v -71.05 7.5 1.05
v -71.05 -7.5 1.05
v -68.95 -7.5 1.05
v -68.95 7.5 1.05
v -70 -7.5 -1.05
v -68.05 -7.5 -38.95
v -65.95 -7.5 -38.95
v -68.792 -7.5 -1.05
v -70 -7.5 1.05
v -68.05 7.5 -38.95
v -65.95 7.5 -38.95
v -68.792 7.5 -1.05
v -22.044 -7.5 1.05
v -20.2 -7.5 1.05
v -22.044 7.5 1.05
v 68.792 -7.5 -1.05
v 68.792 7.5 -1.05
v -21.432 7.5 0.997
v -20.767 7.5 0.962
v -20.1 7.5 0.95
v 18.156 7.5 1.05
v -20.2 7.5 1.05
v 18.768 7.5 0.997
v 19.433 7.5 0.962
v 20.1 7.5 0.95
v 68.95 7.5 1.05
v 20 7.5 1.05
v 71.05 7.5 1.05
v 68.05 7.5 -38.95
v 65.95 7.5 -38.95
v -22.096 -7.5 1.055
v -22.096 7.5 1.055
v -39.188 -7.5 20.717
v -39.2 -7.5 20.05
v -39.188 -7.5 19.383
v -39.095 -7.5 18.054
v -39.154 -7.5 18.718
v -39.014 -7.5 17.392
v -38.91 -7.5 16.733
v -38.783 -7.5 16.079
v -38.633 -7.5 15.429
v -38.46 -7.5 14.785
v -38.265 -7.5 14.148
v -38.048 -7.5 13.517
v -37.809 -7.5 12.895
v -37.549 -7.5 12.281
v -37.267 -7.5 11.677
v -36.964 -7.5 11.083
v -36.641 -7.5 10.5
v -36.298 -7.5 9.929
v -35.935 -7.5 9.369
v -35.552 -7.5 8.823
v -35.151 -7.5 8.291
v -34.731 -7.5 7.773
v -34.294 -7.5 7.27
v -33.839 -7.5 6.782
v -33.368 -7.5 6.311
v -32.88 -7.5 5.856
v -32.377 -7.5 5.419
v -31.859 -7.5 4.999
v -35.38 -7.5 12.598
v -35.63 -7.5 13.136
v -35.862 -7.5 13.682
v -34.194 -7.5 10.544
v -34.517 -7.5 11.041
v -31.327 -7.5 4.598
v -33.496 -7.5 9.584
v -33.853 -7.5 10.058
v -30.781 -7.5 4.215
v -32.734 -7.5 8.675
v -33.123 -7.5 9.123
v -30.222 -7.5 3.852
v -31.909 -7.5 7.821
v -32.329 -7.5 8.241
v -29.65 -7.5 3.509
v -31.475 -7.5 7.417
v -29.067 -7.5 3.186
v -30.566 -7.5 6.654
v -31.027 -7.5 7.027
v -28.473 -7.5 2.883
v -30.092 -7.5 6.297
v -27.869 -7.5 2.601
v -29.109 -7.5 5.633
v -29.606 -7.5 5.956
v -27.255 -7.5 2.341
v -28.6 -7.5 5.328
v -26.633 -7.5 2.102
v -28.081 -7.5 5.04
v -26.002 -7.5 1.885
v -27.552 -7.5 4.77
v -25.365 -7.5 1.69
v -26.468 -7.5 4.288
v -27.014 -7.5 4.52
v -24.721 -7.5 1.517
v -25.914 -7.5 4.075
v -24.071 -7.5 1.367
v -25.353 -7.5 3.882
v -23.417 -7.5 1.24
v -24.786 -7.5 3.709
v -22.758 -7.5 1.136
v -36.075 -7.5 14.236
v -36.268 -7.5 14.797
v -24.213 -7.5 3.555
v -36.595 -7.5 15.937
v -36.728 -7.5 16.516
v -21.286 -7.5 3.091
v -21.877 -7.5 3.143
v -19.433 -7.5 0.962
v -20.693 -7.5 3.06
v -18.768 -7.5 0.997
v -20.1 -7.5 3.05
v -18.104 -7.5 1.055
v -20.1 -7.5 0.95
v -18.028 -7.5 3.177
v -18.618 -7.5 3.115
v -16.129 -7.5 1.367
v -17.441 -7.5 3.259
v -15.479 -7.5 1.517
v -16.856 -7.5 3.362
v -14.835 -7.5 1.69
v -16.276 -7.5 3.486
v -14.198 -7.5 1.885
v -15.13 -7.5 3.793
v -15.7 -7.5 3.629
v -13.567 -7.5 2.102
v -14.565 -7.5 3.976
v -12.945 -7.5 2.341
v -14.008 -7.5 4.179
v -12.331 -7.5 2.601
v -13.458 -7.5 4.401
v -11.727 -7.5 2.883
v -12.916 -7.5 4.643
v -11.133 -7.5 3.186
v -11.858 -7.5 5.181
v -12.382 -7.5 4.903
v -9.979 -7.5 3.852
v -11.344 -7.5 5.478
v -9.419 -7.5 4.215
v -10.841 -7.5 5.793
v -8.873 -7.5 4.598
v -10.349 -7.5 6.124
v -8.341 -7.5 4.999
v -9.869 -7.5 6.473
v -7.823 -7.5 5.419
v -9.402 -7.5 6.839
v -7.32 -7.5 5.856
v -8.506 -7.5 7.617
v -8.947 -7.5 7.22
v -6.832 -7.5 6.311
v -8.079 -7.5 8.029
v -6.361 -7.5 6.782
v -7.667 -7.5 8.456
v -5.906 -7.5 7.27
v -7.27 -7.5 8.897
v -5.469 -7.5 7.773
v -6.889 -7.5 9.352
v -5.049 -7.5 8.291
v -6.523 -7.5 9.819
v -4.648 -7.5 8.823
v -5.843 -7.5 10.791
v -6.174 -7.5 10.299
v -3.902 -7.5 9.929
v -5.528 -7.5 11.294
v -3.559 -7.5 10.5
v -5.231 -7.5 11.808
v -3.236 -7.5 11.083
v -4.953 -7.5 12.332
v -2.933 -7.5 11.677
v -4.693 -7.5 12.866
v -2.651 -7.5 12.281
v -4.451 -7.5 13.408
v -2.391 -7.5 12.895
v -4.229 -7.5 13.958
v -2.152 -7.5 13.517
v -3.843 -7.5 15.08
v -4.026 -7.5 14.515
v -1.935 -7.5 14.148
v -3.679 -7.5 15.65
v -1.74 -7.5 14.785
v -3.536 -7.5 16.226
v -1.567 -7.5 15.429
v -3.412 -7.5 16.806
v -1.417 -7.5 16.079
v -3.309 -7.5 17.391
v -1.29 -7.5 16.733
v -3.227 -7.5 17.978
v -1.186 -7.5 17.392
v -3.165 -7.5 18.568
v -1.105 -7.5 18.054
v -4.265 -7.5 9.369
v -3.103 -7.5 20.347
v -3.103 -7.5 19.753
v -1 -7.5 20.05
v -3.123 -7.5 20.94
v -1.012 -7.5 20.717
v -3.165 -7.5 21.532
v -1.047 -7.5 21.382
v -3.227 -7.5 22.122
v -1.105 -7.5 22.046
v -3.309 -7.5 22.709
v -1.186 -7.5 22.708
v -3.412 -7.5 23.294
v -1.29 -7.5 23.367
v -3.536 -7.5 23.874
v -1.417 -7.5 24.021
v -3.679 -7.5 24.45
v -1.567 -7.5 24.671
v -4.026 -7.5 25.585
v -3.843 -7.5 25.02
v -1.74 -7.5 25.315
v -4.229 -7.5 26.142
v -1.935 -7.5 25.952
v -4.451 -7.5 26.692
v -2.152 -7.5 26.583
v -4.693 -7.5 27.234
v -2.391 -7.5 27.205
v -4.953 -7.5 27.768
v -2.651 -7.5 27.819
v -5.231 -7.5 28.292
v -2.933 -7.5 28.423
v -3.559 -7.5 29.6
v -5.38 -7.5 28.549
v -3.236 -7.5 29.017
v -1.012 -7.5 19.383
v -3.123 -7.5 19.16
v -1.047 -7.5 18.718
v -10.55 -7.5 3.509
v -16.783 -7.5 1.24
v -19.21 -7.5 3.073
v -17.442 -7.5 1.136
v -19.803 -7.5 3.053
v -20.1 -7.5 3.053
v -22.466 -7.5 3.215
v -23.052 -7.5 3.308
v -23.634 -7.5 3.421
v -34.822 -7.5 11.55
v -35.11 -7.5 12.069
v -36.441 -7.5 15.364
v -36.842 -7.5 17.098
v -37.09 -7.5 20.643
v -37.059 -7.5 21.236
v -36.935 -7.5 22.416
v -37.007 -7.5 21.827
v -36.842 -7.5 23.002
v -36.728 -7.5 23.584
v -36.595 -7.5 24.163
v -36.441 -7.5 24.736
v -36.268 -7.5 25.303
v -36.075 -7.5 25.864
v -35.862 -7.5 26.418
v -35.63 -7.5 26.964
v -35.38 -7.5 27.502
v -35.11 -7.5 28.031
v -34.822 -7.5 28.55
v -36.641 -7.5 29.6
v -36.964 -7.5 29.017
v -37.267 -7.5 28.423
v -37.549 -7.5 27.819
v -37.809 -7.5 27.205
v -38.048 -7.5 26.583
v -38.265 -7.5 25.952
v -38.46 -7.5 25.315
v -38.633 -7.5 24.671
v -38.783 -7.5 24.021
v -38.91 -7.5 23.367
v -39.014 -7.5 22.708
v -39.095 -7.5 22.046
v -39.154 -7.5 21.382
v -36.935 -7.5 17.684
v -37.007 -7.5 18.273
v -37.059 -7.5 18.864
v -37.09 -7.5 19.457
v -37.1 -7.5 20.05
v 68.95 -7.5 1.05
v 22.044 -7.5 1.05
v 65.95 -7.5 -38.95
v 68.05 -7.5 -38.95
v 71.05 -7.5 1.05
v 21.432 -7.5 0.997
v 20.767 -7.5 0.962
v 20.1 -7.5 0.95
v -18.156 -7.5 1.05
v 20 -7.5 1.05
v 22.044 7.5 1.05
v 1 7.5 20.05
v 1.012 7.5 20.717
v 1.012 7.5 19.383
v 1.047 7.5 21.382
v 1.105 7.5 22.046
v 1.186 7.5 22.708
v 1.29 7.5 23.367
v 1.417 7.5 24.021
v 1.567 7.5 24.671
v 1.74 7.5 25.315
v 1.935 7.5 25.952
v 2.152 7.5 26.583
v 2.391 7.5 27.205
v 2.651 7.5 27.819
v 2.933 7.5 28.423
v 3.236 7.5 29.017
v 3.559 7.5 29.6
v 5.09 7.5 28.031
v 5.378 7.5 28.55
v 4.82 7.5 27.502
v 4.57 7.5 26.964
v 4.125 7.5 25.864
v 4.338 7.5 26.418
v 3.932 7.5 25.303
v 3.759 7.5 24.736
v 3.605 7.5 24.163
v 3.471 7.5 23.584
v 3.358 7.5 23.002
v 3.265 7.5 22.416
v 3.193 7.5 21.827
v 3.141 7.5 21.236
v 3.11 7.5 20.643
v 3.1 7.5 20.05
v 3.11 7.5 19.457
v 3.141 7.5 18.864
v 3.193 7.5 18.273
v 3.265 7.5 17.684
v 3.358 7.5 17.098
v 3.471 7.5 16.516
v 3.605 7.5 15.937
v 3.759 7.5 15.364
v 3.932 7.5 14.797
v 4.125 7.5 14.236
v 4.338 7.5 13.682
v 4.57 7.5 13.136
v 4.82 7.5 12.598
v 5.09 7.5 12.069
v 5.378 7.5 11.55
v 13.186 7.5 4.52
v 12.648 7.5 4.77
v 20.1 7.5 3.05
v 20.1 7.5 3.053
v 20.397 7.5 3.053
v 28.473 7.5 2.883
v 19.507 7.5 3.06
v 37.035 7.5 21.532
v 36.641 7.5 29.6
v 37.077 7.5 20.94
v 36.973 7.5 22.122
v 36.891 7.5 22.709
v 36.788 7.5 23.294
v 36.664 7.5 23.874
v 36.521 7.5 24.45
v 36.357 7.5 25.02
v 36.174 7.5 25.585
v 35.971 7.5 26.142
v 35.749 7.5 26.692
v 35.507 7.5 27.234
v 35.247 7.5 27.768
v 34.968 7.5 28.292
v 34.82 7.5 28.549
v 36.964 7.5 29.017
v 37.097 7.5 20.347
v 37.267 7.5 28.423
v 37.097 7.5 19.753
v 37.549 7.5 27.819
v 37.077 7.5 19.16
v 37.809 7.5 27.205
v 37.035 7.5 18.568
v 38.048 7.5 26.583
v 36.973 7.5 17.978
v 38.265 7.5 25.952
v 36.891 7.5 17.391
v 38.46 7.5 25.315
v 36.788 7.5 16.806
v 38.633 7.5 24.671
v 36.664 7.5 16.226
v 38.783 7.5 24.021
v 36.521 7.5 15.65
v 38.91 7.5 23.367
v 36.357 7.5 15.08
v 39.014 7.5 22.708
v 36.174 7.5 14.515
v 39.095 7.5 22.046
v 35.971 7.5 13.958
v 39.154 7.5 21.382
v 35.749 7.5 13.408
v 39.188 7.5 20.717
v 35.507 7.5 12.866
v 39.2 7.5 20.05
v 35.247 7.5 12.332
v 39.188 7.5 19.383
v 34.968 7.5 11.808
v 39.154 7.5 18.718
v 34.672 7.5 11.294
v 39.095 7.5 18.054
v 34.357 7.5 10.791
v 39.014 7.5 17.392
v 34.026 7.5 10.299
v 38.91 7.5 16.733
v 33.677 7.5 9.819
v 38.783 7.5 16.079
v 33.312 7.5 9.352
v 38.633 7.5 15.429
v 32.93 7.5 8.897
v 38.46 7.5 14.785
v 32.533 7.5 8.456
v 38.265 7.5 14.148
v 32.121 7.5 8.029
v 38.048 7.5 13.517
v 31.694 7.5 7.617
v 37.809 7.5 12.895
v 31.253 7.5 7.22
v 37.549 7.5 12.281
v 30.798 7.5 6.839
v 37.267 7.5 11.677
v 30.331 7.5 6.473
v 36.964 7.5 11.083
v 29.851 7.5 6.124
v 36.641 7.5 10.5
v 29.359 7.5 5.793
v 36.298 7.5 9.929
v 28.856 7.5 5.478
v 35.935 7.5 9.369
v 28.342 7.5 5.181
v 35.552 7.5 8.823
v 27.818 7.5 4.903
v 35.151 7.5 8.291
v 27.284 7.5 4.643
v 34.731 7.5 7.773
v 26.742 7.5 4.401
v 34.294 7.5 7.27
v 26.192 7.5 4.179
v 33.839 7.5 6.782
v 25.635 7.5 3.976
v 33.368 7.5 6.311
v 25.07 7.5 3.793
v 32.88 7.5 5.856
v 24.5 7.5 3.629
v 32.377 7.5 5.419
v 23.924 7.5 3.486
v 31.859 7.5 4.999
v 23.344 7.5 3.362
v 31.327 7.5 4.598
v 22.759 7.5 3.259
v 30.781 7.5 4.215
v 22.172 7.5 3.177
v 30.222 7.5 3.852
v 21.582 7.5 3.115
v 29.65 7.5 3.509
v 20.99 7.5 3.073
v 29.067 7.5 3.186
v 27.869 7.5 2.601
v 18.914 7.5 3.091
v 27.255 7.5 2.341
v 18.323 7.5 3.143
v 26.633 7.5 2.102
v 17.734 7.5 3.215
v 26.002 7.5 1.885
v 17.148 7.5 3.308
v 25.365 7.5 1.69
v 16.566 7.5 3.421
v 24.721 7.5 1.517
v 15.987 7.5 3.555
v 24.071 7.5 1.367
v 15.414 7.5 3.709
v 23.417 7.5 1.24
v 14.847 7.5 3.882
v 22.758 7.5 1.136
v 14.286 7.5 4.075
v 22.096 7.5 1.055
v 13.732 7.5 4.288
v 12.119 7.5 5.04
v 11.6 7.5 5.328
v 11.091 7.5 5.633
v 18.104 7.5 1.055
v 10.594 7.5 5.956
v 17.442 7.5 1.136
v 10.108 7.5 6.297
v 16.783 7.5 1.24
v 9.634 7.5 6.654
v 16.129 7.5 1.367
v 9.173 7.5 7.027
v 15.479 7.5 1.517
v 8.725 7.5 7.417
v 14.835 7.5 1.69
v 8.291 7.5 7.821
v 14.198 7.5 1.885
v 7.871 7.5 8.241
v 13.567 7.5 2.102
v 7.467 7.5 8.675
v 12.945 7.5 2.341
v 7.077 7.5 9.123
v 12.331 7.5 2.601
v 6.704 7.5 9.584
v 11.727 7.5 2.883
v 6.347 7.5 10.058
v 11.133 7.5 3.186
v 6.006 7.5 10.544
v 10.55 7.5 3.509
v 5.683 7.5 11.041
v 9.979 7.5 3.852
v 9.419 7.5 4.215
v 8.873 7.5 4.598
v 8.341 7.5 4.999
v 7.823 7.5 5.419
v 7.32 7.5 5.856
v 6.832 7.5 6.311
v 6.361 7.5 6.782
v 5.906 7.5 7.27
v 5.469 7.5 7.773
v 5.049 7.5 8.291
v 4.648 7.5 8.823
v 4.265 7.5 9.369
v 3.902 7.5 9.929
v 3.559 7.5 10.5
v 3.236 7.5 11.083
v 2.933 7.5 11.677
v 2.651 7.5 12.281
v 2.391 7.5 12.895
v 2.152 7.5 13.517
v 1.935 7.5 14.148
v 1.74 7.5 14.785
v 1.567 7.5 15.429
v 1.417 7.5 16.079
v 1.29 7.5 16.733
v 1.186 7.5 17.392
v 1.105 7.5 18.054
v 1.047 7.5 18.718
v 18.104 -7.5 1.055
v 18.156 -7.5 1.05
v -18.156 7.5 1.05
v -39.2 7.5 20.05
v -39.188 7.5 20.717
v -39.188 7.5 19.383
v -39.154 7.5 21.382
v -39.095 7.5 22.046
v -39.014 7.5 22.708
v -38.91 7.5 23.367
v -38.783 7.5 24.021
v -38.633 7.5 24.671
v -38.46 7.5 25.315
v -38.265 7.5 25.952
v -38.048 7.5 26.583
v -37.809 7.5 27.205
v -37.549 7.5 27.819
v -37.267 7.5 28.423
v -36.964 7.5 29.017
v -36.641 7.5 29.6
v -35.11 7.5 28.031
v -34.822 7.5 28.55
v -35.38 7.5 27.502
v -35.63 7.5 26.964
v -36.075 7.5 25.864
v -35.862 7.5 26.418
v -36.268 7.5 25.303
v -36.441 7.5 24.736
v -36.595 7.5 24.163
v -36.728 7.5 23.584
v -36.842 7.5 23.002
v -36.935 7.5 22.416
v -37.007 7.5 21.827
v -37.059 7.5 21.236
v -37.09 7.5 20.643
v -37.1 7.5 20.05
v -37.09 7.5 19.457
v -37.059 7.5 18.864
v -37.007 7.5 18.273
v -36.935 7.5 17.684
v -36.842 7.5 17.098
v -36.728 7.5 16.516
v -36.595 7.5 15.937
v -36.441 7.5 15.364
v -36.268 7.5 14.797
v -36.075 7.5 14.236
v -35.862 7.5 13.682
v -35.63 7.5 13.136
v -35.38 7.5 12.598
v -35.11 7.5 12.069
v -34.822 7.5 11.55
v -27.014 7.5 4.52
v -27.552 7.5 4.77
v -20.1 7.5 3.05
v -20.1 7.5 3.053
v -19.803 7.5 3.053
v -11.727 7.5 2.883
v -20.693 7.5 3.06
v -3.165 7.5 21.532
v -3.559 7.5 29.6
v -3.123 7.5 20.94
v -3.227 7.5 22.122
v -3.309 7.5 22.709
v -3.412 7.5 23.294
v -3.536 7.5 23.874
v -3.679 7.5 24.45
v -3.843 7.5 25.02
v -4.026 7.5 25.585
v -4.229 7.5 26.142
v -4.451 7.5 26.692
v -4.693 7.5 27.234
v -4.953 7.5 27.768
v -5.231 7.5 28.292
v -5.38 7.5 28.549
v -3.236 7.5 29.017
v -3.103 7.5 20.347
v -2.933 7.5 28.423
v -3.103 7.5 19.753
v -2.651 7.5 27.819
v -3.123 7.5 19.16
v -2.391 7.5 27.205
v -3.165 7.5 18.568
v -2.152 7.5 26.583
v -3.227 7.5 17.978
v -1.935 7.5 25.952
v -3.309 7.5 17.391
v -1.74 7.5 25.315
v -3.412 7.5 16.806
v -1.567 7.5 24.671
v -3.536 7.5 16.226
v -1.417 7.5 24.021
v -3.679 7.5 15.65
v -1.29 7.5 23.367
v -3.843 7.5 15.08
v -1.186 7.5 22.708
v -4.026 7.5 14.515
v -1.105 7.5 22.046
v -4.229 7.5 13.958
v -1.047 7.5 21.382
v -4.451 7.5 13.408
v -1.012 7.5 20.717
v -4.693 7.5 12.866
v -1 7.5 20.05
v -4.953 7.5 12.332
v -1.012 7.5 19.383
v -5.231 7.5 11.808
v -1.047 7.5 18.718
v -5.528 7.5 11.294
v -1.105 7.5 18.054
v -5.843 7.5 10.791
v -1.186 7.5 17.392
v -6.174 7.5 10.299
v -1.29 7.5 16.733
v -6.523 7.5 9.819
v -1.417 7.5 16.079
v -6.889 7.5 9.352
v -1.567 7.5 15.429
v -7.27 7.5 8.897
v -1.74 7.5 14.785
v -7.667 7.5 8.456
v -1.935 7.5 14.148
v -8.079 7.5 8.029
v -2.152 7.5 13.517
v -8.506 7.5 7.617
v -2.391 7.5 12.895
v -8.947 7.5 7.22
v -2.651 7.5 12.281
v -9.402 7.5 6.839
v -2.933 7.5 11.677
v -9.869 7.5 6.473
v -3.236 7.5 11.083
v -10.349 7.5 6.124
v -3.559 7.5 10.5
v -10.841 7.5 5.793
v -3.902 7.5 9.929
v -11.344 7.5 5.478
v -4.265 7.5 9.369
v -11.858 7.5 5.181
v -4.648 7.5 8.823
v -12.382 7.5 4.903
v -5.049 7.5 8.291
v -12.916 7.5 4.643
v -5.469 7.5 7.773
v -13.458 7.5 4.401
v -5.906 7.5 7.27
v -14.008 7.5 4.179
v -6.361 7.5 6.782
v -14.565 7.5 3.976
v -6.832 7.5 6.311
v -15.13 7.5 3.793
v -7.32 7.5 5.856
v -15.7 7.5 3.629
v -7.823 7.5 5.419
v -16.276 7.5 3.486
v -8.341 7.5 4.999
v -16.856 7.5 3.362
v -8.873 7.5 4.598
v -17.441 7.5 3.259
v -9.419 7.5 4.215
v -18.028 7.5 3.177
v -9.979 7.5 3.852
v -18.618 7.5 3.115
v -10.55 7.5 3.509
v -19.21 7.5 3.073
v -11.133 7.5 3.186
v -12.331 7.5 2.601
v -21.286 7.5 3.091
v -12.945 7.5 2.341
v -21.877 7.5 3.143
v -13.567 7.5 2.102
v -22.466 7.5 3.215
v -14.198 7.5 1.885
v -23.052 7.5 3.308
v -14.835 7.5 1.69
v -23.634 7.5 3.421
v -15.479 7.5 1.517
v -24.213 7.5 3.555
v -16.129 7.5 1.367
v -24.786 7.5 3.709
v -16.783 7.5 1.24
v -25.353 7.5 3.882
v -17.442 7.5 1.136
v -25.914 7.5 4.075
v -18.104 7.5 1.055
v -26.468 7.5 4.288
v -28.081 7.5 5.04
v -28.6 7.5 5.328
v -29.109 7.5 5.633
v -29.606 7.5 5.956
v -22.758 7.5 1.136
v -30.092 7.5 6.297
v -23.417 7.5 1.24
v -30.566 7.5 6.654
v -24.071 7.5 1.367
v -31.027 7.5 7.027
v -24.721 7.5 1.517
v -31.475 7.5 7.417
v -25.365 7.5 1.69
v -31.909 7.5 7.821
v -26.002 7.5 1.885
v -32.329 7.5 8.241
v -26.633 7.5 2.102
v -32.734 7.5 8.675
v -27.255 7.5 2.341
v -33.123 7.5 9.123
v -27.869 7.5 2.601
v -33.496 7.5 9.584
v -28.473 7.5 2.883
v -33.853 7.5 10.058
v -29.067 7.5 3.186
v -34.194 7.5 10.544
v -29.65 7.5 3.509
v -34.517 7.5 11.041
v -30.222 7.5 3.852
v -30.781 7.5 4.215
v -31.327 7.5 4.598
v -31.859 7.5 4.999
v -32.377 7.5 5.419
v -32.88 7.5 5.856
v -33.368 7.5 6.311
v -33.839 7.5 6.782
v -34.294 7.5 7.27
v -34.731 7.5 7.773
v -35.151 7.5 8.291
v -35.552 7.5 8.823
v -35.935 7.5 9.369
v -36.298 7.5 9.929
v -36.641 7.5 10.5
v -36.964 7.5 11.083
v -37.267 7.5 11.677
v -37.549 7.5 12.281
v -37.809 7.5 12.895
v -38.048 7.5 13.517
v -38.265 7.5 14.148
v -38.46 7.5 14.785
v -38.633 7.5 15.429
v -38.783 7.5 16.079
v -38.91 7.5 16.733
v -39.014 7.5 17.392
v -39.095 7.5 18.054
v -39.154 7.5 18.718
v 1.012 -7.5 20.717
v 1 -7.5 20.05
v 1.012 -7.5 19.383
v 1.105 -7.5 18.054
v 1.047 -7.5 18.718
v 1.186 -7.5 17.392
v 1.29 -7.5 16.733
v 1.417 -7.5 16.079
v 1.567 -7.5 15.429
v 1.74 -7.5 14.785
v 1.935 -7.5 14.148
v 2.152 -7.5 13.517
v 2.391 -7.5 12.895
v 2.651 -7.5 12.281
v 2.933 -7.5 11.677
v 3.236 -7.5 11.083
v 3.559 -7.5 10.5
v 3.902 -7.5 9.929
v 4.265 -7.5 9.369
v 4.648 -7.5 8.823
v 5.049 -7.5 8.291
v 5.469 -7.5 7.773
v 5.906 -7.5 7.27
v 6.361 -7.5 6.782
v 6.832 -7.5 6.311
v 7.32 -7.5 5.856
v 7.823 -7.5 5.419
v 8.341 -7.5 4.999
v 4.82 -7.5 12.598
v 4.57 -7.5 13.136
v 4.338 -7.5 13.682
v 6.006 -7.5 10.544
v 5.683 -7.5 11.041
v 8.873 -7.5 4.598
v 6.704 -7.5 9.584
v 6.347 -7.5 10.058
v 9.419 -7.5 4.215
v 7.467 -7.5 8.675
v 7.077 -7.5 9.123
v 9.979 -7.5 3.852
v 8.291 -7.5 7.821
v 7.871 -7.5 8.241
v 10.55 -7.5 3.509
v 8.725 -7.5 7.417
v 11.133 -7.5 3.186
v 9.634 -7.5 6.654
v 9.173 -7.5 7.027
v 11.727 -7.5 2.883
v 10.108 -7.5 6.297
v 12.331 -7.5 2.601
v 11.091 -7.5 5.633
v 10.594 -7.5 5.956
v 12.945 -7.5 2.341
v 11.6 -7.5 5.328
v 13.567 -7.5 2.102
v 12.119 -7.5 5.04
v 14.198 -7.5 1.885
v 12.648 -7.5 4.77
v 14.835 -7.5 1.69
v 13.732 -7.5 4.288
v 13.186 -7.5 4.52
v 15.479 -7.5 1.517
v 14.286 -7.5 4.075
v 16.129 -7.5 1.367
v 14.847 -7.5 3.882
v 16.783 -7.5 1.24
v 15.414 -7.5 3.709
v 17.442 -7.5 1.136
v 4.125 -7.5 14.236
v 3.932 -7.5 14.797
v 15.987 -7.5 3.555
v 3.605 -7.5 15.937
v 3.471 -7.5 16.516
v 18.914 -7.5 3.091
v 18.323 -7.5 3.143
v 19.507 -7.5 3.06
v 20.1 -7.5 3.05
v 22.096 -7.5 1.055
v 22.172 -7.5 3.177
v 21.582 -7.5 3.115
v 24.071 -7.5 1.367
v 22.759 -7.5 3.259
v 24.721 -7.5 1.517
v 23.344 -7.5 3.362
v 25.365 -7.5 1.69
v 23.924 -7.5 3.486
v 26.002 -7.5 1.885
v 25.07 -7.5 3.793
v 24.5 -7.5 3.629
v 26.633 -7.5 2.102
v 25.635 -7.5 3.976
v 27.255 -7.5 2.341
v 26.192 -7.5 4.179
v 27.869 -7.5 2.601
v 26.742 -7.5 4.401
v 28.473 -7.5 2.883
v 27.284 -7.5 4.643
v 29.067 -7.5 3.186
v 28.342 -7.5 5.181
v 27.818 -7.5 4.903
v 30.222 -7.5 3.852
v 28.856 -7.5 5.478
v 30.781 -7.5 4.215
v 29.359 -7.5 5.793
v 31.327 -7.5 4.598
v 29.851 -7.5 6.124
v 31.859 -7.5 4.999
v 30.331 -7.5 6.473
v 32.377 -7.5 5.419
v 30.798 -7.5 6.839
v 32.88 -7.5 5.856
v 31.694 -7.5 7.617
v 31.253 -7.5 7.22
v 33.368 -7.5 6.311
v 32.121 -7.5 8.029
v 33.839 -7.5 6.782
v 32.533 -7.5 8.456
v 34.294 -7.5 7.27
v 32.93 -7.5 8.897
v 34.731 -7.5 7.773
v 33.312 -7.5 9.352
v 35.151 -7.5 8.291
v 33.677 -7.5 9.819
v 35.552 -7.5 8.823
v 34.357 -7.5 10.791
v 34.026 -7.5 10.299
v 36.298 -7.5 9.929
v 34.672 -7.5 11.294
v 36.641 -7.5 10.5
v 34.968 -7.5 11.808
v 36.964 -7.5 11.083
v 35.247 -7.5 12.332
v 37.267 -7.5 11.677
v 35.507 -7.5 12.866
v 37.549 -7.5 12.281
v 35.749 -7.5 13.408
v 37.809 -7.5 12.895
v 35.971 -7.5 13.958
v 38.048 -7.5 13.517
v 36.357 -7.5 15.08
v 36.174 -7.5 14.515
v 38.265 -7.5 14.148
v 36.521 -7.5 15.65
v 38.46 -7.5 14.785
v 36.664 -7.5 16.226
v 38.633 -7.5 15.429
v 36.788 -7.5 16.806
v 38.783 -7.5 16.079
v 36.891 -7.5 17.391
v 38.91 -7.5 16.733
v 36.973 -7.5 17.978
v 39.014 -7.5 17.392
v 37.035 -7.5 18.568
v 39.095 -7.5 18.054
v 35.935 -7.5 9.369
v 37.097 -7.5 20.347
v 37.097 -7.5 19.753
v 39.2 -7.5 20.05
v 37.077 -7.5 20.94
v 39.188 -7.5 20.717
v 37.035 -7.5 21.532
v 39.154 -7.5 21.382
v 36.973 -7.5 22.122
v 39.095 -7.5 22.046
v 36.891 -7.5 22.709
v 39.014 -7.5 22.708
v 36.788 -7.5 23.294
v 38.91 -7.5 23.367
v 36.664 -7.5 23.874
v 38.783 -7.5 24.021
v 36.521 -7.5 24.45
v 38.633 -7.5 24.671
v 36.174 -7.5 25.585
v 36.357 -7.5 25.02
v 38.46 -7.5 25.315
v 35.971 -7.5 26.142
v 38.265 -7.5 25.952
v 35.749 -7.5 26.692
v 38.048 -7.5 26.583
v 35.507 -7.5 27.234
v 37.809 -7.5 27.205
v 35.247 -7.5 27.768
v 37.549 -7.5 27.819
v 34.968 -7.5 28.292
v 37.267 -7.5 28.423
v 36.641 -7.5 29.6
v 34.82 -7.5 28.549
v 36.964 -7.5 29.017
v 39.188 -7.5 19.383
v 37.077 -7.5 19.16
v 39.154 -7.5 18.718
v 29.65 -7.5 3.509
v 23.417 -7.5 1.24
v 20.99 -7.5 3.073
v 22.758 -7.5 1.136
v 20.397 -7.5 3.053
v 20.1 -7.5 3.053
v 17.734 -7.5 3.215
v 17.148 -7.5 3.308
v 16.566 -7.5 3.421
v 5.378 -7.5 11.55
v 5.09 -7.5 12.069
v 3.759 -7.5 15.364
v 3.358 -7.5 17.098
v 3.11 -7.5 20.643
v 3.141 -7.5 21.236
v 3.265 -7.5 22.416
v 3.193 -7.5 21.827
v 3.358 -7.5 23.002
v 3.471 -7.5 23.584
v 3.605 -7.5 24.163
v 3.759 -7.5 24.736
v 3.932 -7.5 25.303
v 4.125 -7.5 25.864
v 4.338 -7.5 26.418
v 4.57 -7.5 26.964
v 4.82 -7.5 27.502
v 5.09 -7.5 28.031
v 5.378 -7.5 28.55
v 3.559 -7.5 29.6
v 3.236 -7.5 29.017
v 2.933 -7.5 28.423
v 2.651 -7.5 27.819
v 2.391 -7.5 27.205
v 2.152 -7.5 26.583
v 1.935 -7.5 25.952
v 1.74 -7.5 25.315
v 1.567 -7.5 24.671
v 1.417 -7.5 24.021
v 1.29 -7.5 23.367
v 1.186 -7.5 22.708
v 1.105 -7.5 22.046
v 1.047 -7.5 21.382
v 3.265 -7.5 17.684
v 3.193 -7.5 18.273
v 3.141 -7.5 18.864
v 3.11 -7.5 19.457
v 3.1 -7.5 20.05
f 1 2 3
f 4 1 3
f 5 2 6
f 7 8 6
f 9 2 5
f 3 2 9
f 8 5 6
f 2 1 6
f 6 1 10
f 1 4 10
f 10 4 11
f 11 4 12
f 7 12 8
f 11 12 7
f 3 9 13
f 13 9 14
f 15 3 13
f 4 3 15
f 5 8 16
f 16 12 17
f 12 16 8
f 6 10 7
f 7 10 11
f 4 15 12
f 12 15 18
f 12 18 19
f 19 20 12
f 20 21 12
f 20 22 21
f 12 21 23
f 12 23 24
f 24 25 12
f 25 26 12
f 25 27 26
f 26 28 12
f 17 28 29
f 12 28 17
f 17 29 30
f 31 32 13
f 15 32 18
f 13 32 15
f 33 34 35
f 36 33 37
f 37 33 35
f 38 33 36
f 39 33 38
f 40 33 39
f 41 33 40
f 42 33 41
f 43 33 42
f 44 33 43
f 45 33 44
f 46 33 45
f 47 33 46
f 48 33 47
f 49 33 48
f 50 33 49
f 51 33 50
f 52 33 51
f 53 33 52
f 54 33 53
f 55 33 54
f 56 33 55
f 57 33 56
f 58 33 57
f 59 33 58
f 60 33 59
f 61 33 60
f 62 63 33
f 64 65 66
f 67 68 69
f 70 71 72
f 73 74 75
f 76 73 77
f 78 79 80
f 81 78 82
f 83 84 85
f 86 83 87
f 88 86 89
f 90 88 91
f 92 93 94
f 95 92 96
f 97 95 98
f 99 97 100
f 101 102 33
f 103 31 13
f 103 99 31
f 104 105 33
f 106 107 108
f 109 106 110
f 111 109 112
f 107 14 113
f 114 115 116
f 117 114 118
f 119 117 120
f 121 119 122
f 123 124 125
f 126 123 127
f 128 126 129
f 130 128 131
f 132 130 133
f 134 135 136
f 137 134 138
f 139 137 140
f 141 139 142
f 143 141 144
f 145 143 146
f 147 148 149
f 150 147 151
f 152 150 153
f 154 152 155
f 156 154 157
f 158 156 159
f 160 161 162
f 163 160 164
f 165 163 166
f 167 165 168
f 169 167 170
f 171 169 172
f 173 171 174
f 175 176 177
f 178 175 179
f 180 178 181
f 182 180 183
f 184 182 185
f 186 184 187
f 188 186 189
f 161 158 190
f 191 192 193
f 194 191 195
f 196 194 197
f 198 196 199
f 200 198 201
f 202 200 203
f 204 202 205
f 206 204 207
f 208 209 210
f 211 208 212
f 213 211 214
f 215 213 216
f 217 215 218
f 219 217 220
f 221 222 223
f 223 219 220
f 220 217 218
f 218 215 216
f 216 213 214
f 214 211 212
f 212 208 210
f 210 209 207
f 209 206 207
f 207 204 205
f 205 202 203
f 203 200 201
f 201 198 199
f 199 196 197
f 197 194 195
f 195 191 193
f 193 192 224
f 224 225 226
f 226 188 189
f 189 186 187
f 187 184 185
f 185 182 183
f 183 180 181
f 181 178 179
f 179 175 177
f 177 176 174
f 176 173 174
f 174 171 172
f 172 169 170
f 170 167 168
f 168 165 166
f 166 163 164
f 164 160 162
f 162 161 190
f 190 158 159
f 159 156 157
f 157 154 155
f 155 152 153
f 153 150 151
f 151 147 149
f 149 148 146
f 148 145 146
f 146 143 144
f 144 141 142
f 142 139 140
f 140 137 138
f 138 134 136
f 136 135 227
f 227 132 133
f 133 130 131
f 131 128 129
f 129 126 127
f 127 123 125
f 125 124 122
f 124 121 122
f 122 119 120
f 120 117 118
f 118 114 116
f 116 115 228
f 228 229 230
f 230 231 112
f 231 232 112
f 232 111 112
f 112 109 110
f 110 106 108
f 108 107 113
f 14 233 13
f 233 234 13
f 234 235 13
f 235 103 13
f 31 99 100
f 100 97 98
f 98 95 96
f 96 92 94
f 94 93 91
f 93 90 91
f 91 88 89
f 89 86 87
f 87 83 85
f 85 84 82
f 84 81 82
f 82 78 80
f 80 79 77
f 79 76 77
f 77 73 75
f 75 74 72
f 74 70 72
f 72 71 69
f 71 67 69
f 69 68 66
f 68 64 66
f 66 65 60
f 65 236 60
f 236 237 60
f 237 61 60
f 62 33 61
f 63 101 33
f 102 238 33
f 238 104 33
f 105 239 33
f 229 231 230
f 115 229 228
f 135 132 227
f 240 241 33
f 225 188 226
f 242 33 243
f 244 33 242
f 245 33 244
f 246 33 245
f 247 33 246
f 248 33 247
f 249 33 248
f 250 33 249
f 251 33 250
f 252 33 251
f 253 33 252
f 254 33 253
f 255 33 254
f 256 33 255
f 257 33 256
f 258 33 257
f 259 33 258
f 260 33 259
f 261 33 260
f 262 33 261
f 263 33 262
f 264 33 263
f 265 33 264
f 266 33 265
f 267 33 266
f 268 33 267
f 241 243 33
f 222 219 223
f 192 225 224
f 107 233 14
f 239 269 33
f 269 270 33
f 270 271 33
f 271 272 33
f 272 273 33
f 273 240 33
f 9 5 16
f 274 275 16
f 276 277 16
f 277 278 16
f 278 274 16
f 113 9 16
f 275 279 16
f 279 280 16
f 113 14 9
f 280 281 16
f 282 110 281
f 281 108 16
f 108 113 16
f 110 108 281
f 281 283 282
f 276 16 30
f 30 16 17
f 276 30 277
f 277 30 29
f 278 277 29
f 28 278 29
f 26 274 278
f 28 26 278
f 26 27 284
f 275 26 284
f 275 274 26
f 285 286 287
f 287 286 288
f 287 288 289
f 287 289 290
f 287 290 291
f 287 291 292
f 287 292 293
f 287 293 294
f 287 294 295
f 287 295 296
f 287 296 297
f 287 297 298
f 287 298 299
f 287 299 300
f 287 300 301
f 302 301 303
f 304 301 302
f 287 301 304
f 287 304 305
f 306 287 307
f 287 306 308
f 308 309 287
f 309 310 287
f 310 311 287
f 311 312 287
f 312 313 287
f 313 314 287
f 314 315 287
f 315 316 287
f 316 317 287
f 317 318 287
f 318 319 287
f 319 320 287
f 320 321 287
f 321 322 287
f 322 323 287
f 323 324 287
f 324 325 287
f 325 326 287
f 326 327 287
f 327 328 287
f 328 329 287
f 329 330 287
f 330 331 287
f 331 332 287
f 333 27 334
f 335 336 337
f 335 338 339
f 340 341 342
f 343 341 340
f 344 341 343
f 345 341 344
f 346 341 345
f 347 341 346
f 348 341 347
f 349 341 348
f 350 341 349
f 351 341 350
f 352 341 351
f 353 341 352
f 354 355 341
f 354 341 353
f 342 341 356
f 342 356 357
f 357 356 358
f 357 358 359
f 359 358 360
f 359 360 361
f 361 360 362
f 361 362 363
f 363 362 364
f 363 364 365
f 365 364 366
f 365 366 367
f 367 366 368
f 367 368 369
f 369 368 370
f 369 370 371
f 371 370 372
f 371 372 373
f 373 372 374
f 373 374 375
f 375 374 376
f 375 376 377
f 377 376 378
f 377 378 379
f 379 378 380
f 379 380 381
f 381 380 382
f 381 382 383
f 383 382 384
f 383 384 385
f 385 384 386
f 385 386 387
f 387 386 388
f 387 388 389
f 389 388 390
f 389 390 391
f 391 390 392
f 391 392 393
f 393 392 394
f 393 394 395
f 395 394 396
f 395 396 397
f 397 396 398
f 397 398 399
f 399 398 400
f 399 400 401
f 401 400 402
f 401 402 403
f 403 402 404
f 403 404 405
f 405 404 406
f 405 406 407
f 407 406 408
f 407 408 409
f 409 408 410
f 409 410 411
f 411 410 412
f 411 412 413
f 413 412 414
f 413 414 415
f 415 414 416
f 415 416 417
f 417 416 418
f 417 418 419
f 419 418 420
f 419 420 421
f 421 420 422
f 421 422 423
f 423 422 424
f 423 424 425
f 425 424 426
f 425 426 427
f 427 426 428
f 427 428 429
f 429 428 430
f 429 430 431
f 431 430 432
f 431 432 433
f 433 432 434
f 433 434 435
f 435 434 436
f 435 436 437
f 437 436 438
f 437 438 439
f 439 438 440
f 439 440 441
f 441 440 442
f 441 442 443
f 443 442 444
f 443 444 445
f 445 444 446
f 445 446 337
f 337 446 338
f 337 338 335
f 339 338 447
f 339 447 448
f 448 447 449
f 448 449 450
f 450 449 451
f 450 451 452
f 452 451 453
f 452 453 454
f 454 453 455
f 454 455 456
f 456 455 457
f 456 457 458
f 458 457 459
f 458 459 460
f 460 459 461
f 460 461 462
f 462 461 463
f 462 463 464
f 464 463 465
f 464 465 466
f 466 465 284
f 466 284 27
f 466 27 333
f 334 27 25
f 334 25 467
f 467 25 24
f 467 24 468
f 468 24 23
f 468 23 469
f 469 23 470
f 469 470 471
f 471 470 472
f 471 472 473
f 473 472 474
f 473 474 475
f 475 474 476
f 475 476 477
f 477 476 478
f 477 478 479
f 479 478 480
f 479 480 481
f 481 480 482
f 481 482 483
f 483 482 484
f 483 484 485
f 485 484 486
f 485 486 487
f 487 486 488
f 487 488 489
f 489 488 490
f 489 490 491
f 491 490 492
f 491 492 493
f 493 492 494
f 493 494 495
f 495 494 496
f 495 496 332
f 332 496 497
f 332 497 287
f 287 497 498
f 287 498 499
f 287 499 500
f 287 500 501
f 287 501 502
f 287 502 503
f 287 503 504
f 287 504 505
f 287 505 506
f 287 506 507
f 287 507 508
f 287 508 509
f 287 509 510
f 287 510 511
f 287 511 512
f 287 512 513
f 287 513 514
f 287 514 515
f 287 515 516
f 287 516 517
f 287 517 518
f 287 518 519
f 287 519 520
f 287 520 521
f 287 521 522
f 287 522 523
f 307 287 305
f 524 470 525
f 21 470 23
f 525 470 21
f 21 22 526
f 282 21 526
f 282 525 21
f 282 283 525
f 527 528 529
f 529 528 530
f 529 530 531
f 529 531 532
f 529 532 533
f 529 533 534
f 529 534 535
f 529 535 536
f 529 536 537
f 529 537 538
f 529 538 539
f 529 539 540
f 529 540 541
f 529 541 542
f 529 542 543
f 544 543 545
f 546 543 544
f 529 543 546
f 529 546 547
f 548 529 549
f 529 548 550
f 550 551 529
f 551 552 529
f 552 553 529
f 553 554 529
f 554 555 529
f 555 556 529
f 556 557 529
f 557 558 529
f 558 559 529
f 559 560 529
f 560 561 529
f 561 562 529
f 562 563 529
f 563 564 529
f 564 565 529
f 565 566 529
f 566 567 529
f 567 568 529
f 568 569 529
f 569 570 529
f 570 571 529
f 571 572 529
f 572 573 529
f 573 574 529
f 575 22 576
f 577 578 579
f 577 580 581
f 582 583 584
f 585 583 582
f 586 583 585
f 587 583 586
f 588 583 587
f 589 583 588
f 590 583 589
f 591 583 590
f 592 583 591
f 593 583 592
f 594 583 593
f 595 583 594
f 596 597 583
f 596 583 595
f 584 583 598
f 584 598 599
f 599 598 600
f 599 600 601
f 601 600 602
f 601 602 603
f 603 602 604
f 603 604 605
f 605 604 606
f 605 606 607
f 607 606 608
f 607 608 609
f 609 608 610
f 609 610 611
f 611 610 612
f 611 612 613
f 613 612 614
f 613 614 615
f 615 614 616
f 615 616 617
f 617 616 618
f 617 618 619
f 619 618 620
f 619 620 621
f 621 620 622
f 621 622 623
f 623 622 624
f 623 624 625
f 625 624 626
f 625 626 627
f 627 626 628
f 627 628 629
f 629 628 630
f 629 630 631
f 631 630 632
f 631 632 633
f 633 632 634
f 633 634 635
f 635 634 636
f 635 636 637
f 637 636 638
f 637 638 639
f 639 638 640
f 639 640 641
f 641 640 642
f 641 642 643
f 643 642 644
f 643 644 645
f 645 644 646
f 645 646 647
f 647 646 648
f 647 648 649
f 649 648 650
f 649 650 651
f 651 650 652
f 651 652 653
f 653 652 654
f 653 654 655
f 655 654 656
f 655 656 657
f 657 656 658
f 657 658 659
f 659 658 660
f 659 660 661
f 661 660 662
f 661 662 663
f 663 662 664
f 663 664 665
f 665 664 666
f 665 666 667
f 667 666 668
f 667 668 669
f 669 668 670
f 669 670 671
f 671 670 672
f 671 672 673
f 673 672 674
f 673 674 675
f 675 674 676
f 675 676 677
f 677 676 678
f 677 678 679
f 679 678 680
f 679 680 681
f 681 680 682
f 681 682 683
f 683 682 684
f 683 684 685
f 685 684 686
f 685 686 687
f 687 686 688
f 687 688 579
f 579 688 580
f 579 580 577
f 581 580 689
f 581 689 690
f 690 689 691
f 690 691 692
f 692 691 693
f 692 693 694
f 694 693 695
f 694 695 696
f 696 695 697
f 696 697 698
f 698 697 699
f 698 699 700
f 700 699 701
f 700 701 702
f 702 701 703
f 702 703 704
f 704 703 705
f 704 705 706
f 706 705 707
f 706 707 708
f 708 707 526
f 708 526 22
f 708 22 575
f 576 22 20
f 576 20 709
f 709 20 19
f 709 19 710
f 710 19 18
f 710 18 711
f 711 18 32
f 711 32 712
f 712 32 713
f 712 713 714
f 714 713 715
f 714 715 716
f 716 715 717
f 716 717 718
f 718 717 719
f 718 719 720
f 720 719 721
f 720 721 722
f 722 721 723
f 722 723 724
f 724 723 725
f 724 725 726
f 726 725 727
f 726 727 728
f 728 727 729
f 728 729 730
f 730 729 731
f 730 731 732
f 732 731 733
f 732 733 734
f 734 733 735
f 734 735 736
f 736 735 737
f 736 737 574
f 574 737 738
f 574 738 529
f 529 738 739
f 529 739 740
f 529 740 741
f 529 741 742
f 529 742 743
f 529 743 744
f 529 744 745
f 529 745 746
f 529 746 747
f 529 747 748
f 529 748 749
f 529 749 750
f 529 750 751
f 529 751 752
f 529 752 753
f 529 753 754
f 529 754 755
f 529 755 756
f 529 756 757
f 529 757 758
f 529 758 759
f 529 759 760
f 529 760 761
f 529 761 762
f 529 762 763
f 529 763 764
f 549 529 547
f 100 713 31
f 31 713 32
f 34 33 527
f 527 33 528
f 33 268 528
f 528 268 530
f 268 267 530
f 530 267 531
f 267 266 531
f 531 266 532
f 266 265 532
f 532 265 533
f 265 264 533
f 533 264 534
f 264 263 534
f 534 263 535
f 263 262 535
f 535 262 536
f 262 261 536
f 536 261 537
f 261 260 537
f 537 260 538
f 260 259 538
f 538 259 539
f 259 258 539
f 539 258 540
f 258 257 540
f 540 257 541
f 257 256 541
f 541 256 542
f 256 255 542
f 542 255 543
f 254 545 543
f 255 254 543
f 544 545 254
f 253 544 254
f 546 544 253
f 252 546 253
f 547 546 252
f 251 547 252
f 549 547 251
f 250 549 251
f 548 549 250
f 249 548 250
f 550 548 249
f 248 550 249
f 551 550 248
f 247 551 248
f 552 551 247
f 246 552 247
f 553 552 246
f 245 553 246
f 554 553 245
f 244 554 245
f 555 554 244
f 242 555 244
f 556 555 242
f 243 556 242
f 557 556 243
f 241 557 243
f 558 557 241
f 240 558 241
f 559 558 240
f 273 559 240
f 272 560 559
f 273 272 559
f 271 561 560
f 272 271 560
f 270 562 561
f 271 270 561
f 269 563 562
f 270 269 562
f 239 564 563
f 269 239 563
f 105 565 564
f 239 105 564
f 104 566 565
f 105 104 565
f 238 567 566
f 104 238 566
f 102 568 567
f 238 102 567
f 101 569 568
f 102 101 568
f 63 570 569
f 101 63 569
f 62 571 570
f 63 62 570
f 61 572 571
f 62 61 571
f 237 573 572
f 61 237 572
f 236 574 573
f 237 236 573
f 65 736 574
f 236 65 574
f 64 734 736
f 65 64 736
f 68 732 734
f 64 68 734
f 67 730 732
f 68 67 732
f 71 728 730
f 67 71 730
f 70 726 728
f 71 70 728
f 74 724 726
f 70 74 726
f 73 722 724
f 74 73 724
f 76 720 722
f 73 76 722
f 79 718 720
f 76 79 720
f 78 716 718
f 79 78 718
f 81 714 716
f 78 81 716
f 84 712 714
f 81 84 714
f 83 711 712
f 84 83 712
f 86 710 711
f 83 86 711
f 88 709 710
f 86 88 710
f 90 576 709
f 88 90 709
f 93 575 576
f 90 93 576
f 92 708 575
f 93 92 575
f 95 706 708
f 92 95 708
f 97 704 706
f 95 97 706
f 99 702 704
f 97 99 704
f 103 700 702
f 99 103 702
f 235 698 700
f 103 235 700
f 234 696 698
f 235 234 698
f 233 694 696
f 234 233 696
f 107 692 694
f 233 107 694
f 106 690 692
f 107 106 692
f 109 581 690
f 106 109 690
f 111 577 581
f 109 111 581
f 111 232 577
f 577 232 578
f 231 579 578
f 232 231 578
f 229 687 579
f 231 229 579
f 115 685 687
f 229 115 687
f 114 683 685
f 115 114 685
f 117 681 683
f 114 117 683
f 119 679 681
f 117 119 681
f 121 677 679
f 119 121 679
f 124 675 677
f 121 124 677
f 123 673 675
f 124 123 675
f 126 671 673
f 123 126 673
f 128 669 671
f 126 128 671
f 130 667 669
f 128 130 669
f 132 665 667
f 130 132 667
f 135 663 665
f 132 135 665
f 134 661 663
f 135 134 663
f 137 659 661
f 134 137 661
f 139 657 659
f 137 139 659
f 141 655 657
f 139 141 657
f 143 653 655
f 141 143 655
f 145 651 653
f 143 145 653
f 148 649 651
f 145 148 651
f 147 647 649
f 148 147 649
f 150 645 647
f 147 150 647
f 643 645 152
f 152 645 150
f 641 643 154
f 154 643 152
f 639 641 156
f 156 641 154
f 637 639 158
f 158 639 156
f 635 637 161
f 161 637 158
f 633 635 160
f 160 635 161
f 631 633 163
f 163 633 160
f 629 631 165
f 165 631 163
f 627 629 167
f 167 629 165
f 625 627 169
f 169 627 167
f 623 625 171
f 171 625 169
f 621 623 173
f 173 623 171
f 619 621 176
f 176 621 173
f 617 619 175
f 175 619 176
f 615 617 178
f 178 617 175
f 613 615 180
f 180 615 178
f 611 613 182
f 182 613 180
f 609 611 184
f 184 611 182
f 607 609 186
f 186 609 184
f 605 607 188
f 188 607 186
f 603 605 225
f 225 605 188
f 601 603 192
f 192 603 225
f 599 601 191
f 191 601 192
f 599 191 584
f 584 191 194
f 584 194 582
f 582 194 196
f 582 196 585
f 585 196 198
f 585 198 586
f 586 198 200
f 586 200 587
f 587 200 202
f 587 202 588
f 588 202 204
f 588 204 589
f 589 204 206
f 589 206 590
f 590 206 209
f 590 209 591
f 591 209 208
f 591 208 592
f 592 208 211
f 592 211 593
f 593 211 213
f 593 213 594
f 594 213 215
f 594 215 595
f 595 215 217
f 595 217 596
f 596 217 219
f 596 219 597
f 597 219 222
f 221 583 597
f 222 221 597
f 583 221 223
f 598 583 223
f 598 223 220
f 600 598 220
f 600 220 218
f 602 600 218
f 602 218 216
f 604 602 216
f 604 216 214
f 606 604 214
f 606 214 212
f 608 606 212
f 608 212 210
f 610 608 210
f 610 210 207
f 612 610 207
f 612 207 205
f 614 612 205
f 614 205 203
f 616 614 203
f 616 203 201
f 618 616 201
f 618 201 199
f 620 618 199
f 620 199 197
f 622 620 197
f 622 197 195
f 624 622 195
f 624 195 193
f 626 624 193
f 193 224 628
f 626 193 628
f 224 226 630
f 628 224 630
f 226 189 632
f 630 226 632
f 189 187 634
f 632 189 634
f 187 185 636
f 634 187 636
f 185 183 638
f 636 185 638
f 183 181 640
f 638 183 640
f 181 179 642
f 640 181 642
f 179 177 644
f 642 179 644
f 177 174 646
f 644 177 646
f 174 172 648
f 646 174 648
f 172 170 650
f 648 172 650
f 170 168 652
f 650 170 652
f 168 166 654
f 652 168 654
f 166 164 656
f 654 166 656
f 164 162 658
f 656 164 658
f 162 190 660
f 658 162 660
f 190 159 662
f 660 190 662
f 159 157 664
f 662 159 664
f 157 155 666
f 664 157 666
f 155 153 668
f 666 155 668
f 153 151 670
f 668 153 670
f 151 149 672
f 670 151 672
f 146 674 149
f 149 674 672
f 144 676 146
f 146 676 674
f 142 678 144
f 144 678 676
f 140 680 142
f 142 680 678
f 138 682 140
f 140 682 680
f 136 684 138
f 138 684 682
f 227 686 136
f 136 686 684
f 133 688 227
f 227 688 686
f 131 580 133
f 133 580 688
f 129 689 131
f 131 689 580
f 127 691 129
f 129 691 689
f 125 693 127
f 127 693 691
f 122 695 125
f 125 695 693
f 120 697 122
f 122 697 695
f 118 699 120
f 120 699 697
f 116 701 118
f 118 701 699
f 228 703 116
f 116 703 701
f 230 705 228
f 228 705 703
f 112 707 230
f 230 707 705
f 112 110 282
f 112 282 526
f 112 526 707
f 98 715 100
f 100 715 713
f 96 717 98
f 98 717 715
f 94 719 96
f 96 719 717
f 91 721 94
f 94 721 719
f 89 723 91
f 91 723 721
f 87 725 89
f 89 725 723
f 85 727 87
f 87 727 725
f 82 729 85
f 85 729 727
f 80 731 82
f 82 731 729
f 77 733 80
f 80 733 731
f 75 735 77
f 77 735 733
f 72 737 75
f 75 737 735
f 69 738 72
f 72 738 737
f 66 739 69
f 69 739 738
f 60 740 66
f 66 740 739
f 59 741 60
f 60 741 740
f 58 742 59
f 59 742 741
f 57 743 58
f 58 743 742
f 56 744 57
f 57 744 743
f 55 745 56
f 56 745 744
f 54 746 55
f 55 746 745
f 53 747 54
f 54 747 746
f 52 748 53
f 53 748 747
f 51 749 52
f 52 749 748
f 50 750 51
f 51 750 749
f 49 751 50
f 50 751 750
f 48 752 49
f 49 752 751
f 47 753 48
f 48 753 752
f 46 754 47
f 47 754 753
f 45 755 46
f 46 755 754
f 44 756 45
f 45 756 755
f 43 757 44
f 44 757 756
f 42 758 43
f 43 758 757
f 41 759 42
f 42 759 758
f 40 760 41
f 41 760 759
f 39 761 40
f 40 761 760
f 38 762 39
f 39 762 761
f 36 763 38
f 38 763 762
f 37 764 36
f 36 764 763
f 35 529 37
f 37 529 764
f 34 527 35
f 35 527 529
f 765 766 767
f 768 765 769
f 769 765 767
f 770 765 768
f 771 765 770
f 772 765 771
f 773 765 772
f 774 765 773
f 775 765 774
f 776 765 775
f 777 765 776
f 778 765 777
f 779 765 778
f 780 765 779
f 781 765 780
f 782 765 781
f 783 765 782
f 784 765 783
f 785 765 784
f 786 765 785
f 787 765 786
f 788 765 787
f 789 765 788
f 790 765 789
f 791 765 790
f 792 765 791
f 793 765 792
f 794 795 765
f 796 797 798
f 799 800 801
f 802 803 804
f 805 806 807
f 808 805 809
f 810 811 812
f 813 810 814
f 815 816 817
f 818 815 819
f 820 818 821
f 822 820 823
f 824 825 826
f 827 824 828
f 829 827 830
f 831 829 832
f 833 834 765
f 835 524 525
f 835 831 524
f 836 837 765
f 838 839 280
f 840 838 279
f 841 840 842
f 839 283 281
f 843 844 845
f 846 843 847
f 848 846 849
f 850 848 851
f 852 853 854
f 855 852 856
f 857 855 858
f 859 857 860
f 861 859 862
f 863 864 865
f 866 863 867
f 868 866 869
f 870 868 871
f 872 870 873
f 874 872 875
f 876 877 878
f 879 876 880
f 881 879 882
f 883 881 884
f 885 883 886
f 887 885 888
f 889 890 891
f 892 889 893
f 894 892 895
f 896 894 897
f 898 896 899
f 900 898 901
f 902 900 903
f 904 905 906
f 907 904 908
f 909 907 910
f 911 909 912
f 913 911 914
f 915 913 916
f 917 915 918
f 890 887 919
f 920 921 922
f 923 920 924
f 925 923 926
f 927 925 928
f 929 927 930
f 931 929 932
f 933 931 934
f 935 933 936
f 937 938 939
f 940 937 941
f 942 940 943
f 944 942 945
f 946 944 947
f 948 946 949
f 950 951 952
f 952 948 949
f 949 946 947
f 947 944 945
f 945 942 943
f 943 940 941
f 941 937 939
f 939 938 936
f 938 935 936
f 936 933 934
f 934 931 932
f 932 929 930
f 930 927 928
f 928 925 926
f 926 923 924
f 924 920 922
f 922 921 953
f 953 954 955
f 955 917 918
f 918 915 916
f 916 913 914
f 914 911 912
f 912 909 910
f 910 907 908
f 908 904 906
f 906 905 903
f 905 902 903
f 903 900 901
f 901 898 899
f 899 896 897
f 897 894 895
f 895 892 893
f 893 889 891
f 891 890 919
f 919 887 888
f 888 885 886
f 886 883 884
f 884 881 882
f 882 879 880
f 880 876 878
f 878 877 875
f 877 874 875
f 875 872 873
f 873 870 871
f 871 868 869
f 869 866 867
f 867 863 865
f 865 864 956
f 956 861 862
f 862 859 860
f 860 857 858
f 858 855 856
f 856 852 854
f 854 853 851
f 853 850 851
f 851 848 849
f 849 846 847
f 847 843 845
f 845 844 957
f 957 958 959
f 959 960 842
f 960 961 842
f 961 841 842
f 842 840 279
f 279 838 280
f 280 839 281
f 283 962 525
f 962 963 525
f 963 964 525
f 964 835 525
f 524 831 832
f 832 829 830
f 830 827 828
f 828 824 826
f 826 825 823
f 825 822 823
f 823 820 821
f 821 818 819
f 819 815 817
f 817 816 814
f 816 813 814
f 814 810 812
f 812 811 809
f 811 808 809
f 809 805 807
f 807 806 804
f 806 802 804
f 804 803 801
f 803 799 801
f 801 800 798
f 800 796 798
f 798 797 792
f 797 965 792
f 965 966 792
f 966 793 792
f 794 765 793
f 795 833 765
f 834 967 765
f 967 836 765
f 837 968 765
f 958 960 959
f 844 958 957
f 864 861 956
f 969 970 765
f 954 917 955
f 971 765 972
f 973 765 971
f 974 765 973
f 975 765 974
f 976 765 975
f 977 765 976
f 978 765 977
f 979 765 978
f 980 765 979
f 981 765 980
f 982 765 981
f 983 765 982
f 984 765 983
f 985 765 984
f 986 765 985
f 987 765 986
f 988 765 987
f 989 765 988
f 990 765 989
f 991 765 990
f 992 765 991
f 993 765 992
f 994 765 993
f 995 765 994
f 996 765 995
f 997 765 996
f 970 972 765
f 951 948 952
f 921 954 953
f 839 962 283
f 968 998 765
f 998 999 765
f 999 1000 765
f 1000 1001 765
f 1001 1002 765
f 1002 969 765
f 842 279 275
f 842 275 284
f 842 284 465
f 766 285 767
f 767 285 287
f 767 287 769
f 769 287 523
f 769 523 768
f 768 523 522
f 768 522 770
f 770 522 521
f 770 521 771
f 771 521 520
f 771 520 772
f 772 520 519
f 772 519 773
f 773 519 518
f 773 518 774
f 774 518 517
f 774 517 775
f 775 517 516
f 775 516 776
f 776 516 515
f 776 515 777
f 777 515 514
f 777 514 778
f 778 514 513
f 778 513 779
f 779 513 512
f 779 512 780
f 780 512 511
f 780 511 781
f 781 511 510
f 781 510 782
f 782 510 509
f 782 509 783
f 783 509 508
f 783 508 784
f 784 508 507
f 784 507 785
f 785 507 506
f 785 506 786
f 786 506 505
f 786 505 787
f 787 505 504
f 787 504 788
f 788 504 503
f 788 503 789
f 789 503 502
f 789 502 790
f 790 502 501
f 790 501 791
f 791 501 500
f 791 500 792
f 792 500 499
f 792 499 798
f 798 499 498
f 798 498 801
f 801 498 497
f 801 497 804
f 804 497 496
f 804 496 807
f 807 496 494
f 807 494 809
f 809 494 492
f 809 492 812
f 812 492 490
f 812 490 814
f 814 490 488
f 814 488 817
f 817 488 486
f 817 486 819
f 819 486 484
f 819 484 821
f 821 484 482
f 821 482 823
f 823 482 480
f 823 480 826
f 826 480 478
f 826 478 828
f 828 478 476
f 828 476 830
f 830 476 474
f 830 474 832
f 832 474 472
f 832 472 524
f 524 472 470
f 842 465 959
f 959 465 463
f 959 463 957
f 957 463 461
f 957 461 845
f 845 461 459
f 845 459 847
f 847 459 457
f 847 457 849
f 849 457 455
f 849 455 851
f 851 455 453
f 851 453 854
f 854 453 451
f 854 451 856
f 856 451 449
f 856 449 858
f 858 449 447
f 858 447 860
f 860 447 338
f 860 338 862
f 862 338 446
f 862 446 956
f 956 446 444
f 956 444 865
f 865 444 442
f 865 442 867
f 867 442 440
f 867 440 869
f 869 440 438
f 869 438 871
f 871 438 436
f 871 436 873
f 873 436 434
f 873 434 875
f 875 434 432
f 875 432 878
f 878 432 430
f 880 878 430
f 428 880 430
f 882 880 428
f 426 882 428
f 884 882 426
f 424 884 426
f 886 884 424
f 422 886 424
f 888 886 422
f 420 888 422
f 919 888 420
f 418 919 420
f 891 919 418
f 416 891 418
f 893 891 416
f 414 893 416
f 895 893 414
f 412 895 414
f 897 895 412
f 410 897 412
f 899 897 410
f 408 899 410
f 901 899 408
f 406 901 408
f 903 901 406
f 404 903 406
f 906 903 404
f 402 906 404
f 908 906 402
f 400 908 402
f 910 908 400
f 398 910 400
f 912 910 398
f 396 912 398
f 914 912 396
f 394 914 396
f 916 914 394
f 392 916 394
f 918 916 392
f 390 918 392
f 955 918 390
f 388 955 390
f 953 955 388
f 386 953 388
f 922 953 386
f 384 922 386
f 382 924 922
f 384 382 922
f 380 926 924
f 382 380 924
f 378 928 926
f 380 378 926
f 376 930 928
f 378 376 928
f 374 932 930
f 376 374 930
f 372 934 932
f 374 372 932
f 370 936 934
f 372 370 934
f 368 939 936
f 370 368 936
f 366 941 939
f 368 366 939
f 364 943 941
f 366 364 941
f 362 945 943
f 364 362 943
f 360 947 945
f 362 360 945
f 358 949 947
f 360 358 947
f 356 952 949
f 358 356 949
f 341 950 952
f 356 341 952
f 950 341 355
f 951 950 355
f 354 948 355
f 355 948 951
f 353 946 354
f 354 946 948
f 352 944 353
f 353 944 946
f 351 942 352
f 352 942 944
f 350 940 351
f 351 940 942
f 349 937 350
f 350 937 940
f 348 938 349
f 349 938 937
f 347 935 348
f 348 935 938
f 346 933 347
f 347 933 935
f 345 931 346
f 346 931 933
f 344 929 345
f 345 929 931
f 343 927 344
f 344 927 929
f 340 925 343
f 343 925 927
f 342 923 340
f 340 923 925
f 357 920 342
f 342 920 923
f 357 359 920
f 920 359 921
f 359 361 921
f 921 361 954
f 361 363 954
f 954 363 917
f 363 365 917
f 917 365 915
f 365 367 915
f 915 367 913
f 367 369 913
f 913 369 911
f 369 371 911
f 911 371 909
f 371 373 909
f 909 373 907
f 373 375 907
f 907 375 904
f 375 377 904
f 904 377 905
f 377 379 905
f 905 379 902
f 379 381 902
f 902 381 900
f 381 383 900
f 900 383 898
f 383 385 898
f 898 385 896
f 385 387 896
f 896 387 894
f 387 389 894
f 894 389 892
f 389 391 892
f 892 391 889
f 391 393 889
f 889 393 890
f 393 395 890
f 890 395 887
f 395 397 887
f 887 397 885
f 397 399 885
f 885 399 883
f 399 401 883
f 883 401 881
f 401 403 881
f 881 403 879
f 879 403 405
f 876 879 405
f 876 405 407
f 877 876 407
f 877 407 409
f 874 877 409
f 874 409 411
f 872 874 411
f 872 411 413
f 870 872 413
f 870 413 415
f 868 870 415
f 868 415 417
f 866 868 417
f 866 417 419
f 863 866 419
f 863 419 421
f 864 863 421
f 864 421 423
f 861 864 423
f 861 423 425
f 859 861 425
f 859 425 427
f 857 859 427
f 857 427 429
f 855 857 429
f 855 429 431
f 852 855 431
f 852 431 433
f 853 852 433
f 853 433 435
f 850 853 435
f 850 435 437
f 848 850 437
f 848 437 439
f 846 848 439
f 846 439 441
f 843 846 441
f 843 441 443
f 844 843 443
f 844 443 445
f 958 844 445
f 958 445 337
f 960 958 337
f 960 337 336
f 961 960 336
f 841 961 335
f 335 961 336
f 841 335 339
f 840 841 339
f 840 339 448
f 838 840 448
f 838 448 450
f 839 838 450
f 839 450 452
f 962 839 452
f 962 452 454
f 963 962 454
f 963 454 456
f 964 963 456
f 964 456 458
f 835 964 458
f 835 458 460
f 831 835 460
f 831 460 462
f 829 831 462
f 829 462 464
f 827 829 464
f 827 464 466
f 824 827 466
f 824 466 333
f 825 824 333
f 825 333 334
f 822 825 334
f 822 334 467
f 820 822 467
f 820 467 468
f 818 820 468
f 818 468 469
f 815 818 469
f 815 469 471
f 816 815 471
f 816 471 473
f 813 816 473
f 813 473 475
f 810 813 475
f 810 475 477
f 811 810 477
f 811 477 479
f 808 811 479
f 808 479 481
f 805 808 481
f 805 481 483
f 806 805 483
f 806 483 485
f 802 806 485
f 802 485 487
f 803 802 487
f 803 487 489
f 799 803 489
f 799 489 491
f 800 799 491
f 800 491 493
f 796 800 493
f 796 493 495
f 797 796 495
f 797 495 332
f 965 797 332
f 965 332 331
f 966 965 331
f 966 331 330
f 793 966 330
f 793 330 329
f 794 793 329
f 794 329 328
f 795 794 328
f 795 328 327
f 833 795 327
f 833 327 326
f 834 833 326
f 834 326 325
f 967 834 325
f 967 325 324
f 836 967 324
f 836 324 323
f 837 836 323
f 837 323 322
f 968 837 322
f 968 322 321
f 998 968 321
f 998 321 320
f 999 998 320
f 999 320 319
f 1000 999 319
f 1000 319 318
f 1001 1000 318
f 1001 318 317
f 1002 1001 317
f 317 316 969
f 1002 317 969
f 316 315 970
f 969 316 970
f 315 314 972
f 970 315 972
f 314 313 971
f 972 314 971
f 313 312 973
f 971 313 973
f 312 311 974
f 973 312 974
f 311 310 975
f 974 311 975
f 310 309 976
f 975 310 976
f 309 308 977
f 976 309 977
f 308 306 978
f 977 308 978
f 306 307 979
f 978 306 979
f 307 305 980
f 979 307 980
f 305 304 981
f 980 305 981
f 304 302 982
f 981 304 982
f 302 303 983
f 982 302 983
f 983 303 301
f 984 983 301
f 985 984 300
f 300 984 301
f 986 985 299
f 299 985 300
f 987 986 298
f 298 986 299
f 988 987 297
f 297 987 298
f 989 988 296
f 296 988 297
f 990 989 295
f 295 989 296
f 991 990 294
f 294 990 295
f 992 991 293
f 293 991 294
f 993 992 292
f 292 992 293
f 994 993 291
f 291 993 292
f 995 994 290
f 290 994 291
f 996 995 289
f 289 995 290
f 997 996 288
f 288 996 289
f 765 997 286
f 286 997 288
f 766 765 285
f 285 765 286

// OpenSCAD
// Pool hose holder, for fixing two hoses to an edge.

$fn = 180;

// Variables

// The outer diameter of the hose to hold
hose_outer_diameter = 34;

// The overall angle for the hose holder
hose_holder_angles = 240;

// Number of hoses to hold. Minimum is 1
number_of_hoses = 2;

// Spacing between hoses. 0 means that the will touch
hose_holder_spacing = 2;

// Width of the thing to fasten too. Will become inside width
solid_width = 137;

// Extra width
solid_extra_width = 3;

// Substract/flex. This is substracted in *each* side.
solid_substract_width = 3;

// Solid gribbing
solid_grib_height = 40;

// Thickness
overall_thickness = 2.1;

// Width of everything
overall_width = 15;

// Helps with previews, etc.
pad = 0.1;


////////////////////////////////////////////////////////////
// Helper functions
// Obs, will only slice 0-180 degrees, but the angles can go from
// [-180,0] => [0,180]
// Start and end angles are relative to X axis
module cylinder_half_slice( r1, r2, h, start_angle, end_angle ) {
    module cut_cube() {
        rotate([0,0,-90]) {
            translate([0,-( r1 + r2 ),-h]) {
                cube([ 2* ( r1 + r2 ), 2*( r1 + r2 ), 3 * h ]);
            }
        }
    }

    // Rotate into place
    rotate([0,0,-(180-end_angle)]) {
        // Cut to limit of angles. 
        difference() {
            rotate([0,0,180-(end_angle-start_angle)]) {
                // First cut, limits to 180 degrees
                difference() {
                    cylinder( r1 = r1, r2 = r2, h = h );
                    cut_cube();
                }
            }
            cut_cube();
        }
    }
}
// Test
// cylinder_half_slice( 10, 20, 40, 90, 180 );
// cylinder_half_slice( 10, 20, 40, -10, 90 );

module hose_holder() {


}

// A single holder, based in 0,0,0, oriented along x axis.
hose_holder_angle = hose_holder_angles / 2;
hose_outer_radius = hose_outer_diameter / 2;
hose_holder_inside_radius = hose_outer_radius;
hose_holder_outside_radius = hose_holder_inside_radius + overall_thickness;
module hose_holder() {
    rotate([0,0,90])
    rotate([0,90,0])
    translate([-hose_holder_outside_radius,0,-overall_width/2])
    difference() {
        union() {
            cylinder_half_slice( r1 = hose_holder_outside_radius, r2 = hose_holder_outside_radius, h = overall_width, start_angle = -hose_holder_angle, end_angle = 0 );
            cylinder_half_slice( r1 = hose_holder_outside_radius, r2 = hose_holder_outside_radius, h = overall_width, start_angle = 0, end_angle = hose_holder_angle );
        }
        translate([0,0,-pad])
        union() {
            cylinder_half_slice( r1 = hose_holder_inside_radius, r2 = hose_holder_inside_radius, h = overall_width+2*pad, start_angle = -hose_holder_angle-1, end_angle = 0 );
            cylinder_half_slice( r1 = hose_holder_inside_radius, r2 = hose_holder_inside_radius, h = overall_width+2*pad, start_angle = 0, end_angle = hose_holder_angle+1 );
        }
    }
            
}

module hose_holders() {
    // Iterate, then translate into place.
    single_width = hose_holder_outside_radius * 2 + hose_holder_spacing;
    total_width = number_of_hoses * hose_holder_outside_radius * 2 + (number_of_hoses - 1 ) * hose_holder_spacing;
    translate([-total_width/2 + hose_holder_outside_radius, 0, 0])
    for ( n = [1:number_of_hoses] ) {
       translate([(n-1)*single_width,0,0]) {
           hose_holder();
       }
   }
}

module tab() {
    // Tabs in the end.
    translate([(solid_width+solid_extra_width-solid_substract_width)/2,0,-(solid_grib_height-overall_thickness)/2])
    // This is a shear
    // See http://www.cs.colorado.edu/~mcbryan/5229.03/mail/55.htm
    multmatrix( m = [
            [ 1, 0, solid_substract_width/solid_grib_height, 0 ],
            [ 0, 1, 0, 0 ],
            [ 0, 0, 1, 0 ],
            [ 0, 0, 0, 1 ] ] )
    rotate([0,90,0])
    cube([solid_grib_height, overall_width, overall_thickness], center = true);
}

module fastener() {
    // A cube is the base. It is based on z = 0.
    cube([solid_width + solid_extra_width, overall_width, overall_thickness], center = true);
    tab();
    rotate([0,0,180]) tab();
    
}


module main() {

    // The fastener
    fastener();
    
    // Translate just a tad up
    translate([0,0,overall_thickness/2-pad])
    hose_holders();
}

main();
